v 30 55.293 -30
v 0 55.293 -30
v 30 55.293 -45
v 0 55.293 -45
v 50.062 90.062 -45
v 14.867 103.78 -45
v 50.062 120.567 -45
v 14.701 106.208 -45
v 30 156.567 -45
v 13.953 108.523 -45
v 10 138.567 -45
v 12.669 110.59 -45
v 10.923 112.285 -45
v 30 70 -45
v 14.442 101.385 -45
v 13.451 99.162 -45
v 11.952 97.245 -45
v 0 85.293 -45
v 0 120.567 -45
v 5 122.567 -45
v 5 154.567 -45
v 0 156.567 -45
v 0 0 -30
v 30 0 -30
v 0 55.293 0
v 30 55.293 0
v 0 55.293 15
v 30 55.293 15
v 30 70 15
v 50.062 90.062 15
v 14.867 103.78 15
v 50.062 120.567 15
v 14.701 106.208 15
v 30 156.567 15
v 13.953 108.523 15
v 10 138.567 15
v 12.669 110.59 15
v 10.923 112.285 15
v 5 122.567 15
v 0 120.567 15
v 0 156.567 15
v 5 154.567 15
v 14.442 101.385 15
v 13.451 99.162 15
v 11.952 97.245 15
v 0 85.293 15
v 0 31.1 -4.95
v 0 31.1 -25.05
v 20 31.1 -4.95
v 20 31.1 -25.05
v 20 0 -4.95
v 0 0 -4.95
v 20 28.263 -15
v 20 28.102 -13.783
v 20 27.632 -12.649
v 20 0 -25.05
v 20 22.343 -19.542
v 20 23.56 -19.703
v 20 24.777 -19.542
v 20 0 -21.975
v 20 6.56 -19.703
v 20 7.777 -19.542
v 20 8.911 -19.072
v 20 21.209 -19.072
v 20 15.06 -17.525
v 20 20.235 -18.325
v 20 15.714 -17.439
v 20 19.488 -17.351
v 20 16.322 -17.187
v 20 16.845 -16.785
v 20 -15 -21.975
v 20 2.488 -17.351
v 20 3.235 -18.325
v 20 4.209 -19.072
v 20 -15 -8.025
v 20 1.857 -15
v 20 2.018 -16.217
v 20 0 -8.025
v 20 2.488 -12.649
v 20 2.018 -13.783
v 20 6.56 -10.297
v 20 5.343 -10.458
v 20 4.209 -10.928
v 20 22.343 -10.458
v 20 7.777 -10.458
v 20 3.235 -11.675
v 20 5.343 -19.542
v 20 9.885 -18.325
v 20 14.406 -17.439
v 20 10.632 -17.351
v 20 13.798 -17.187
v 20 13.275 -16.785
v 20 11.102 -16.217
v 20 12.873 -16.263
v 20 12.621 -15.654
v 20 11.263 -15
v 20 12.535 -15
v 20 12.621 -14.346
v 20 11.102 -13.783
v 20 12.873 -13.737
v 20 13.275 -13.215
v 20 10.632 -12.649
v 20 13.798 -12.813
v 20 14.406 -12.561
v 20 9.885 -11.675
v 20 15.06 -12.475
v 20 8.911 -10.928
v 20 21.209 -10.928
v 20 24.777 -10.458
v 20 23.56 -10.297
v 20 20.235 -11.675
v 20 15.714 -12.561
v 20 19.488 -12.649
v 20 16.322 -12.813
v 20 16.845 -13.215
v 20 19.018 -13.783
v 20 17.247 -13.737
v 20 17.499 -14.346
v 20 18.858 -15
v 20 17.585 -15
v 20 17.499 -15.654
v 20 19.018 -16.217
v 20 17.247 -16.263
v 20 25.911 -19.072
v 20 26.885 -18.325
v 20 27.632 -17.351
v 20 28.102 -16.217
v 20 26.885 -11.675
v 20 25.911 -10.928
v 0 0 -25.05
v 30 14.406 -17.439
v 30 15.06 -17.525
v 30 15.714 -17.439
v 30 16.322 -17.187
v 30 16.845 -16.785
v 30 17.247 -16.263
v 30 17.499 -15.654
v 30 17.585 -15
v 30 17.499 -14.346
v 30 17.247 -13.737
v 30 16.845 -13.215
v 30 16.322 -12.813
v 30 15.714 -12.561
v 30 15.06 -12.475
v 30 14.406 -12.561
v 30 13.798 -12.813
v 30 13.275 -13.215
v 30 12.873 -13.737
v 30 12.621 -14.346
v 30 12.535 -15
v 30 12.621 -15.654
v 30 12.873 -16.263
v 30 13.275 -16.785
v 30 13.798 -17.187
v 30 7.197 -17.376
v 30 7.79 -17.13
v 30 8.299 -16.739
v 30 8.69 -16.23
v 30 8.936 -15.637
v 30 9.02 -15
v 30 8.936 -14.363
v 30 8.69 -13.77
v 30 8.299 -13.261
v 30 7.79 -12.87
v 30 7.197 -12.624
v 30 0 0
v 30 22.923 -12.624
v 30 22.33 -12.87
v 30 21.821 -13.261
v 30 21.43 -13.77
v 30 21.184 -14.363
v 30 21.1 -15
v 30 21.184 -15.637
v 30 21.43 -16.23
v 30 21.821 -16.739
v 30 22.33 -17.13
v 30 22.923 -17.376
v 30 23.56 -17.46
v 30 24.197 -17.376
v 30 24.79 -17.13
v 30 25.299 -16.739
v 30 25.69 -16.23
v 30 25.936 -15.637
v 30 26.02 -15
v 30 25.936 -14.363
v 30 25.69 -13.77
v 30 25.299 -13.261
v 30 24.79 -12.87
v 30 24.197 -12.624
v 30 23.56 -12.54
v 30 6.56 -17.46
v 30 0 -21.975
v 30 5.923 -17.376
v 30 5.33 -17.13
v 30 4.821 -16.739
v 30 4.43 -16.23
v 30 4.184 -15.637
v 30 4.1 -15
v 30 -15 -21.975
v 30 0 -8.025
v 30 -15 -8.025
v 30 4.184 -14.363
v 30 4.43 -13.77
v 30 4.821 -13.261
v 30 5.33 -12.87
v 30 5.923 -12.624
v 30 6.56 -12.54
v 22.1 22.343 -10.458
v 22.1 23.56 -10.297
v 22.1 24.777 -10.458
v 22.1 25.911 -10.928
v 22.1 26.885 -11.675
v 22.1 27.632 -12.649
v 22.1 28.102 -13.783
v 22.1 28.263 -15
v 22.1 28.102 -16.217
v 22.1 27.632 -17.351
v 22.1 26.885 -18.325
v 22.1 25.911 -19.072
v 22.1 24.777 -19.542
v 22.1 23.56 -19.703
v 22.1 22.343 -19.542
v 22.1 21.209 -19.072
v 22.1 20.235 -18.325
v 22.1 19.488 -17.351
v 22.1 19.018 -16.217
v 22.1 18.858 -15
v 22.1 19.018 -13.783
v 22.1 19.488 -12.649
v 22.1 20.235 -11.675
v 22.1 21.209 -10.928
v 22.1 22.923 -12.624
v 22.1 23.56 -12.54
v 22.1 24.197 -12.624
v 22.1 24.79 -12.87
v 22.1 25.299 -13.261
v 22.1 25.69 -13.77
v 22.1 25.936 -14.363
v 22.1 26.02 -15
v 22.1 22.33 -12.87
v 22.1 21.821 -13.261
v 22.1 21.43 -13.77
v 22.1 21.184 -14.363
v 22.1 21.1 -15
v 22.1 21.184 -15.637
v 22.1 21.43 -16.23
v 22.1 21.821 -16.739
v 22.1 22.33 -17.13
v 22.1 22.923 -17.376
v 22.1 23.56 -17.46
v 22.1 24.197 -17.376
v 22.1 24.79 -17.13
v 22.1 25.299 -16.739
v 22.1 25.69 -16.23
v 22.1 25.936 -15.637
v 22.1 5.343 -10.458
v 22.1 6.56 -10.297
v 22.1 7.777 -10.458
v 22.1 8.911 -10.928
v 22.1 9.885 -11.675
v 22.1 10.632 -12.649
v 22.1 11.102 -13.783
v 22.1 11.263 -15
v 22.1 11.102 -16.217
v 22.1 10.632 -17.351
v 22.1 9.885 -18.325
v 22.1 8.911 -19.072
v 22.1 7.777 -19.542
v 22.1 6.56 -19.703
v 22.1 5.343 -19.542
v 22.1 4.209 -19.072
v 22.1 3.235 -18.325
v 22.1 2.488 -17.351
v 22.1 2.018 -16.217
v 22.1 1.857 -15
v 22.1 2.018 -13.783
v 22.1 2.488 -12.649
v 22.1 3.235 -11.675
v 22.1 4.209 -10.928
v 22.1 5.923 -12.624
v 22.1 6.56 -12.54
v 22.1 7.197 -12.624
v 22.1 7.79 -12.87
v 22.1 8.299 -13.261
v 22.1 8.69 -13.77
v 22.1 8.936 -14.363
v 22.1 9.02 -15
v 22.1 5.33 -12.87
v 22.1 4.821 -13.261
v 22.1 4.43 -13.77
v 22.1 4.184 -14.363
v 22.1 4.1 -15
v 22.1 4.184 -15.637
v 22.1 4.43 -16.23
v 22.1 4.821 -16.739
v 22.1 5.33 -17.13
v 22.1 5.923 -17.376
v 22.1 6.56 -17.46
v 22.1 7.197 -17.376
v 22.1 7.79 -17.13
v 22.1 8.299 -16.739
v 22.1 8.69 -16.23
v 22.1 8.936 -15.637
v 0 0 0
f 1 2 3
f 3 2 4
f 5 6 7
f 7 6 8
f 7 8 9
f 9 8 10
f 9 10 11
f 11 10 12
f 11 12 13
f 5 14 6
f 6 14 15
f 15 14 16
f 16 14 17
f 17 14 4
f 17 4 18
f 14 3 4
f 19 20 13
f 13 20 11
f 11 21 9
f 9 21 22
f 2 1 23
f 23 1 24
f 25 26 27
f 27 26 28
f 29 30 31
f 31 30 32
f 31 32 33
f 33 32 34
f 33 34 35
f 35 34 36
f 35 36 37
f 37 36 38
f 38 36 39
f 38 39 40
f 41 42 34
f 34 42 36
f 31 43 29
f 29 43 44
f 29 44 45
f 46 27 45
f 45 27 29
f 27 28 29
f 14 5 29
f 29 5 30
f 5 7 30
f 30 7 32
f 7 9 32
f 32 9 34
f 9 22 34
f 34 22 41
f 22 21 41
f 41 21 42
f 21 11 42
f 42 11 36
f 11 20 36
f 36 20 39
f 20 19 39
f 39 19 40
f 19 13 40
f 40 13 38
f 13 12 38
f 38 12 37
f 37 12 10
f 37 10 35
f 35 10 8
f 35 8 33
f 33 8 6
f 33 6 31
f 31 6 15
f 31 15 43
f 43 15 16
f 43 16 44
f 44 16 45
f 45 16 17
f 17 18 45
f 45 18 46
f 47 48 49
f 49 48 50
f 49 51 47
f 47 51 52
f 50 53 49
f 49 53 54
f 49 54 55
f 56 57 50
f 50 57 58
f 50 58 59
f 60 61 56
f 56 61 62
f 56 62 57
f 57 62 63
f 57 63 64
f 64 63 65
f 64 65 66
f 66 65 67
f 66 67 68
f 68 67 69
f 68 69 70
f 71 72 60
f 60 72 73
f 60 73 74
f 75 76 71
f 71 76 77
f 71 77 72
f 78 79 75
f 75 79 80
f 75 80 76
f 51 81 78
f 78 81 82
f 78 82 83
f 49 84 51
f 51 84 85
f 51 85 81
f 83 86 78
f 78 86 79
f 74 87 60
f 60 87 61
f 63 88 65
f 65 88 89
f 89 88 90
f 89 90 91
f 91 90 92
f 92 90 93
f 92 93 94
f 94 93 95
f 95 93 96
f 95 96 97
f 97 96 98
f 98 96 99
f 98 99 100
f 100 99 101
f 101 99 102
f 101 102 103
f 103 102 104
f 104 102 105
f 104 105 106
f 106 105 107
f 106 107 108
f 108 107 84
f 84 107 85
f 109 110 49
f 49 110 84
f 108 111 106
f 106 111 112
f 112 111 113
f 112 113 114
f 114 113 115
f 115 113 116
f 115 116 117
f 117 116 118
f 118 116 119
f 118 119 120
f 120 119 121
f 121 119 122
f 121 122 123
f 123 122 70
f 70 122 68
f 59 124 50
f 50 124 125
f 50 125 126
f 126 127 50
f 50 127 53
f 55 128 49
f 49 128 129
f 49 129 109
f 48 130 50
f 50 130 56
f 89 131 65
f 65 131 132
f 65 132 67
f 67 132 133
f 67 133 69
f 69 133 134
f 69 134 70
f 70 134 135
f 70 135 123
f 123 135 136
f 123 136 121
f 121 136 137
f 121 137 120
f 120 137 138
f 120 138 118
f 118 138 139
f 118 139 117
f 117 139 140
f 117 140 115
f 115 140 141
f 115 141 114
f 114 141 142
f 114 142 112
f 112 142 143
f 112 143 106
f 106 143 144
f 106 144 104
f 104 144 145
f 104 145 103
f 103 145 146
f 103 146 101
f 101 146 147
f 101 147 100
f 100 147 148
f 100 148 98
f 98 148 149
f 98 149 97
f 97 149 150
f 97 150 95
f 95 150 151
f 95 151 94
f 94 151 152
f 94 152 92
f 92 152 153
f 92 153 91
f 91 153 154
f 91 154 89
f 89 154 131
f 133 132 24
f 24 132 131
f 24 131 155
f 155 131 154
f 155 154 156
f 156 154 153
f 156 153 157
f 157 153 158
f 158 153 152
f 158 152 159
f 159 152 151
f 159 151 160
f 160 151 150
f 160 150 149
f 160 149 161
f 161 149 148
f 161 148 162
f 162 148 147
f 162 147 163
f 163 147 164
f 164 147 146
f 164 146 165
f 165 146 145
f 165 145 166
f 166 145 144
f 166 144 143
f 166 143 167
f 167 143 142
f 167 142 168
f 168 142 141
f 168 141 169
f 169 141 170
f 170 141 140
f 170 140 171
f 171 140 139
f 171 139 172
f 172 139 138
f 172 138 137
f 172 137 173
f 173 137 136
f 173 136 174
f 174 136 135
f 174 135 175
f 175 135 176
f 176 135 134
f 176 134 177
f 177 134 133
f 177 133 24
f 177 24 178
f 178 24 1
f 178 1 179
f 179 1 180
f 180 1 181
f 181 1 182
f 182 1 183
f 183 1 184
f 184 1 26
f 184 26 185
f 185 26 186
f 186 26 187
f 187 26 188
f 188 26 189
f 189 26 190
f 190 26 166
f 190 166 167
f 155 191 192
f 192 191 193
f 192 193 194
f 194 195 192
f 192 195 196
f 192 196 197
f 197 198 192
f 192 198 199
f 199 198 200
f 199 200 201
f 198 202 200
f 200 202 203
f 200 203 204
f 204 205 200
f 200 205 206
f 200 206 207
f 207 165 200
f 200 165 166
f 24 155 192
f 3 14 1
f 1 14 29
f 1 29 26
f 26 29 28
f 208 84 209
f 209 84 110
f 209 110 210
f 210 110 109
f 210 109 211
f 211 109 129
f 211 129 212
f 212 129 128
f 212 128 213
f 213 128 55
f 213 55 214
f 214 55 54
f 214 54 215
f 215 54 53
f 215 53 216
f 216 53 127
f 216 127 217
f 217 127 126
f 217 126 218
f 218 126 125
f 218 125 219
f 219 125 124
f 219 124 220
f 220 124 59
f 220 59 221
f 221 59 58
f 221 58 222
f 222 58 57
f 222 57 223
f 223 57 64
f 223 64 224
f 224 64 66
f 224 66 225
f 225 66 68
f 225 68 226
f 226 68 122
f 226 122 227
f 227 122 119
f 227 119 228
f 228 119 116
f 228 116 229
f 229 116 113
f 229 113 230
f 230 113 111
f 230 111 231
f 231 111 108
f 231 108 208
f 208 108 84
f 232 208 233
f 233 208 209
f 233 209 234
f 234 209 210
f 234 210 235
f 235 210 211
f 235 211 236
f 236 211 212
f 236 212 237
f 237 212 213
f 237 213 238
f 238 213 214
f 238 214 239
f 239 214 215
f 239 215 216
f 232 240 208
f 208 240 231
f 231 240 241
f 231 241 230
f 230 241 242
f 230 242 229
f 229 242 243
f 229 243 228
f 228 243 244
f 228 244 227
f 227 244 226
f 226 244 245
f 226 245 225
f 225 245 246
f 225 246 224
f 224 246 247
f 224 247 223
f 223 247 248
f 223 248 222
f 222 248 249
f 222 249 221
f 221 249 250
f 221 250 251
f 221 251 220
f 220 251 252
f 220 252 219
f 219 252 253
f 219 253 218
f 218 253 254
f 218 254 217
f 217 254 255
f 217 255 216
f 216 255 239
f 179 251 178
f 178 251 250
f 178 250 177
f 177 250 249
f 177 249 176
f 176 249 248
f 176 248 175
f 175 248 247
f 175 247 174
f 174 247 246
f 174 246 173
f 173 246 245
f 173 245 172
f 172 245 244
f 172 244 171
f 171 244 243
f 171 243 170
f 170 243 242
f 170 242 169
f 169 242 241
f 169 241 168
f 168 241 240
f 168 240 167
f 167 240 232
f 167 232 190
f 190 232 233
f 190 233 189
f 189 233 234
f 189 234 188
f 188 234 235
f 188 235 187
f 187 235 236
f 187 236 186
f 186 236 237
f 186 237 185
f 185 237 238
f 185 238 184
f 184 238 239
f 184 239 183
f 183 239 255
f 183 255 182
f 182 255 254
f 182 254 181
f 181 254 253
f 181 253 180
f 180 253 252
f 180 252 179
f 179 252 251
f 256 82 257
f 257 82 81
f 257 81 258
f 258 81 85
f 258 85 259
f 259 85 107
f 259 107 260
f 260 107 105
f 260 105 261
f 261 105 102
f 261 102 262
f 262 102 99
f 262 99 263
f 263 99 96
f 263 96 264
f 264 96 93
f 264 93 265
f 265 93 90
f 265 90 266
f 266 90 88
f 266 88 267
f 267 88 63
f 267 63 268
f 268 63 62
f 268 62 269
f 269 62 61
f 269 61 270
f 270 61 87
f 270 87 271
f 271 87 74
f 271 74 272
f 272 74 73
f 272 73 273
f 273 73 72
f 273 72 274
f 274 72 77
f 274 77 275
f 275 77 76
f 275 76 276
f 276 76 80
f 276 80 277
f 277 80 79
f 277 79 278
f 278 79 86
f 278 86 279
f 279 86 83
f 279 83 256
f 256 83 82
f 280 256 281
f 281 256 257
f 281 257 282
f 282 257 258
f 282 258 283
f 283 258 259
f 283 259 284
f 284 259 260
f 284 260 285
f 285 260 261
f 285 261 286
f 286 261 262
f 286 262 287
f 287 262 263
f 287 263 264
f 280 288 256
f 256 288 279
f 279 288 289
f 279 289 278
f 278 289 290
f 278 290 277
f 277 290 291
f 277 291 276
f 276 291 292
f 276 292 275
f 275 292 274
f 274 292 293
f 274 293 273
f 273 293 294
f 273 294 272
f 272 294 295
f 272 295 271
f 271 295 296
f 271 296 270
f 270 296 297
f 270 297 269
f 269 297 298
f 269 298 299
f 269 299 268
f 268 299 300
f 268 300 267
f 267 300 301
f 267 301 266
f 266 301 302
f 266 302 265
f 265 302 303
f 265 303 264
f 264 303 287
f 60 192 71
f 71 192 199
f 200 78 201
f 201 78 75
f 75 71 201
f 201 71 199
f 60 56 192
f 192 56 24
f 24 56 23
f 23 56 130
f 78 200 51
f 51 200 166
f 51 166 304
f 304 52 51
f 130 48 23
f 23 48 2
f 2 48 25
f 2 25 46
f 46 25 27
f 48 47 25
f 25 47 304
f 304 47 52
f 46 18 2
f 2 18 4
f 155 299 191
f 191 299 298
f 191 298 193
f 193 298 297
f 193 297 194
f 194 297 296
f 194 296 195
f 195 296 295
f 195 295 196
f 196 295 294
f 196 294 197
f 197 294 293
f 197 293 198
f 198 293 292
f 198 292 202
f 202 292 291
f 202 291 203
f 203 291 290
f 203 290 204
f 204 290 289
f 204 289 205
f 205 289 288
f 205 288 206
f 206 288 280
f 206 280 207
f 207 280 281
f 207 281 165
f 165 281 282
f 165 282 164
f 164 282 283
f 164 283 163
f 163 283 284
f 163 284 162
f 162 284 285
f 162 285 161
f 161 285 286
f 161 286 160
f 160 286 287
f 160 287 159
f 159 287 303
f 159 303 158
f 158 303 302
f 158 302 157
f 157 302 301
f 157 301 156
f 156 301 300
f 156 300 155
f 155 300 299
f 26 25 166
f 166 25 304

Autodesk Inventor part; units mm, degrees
ref_plane "YZ Plane" through (0, 0, 0) normal (1, 0, 0) x (0, 1, 0)
ref_plane "XZ Plane" through (0, 0, 0) normal (0, 1, 0) x (-1, 0, 0)
sketch "Sketch1" plane through (0, 0, 0) normal (0, 0, 1) x (1, 0, 0)
  line L0 (0, 0) -> (25, 0)
  line L1 (25, 0) -> (25, 40)
  line L2 (25, 40) -> (0, 40)
  line L3 (0, 40) -> (0, 0)
  dimension "d1" = 25
  dimension "d2" = 40
  dimension "d3" = 25
extrude "Extrusion1" add sketch "Sketch1" against normal blind 30
sketch "Sketch2" plane through (25, 0, 0) normal (1, 0, 0) x (0, 0, -1)
  line L0 (0, 0) -> (30, 0) projected
  circle A0 centre (15, 6.56) radius 2.46
extrude "Extrusion2" cut sketch "Sketch2" against normal blind 30
sketch "Sketch3" plane through (0, 0, 0) normal (-1, 0, 0) x (0, 0, 1)
  line L0 (0, 0) -> (-30, 0) projected
  line L1 (-25.05, 0) -> (-4.95, 0)
  line L2 (-4.95, 0) -> (-4.95, 33.12)
  line L3 (-4.95, 33.12) -> (-25.05, 33.12)
  line L4 (-25.05, 33.12) -> (-25.05, 0)
  dimension "d11" = 20.1
extrude "Extrusion3" cut sketch "Sketch3" against normal blind 20
sketch "Sketch4" plane through (0, 0, 0) normal (0, -1, 0) x (1, 0, 0)
  line L0 (20, -4.95) -> (20, -25.05) projected
  line L1 (20, -15) -> (25, -15)
  line L2 (25, 0) -> (25, -30) projected
  line L3 (20, -8.025) -> (25, -8.025)
  line L4 (25, -8.025) -> (25, -21.975)
  line L5 (25, -21.975) -> (20, -21.975)
  line L6 (20, -21.975) -> (20, -8.025)
  line L7 (20, -8.025) -> (25, -21.975) construction
  line L8 (25, -8.025) -> (20, -21.975) construction
  line L9 (25, -12.54) -> (25, -17.46) projected
  point P0 (0, 0)
  point P1 (22.5, -15)
  dimension "d14" = 13.95
extrude "Extrusion4" add sketch "Sketch4" along normal blind 15
sketch "Sketch5" plane through (20, 0, 0) normal (-1, 0, 0) x (0, 0, 1)
  circle A0 centre (-15, 6.56) radius 2.46 projected
  circle A1 centre (-15, 6.56) radius 4.7025
  circle A2 centre (-15, 6.56) radius 2.46 projected
  circle A3 centre (-15, 6.56) radius 2.46
  point P0 (0, 0)
  dimension "d17" = 9.405
extrude "Extrusion5" cut sketch "Sketch5" against normal blind 2.1
sketch "Sketch6" plane through (25, 0, 0) normal (1, 0, 0) x (0, 0, -1)
  circle A0 centre (15, 6.56) radius 4.7025 projected
  line L0 (15, 6.56) -> (15, 23.56)
  circle A1 centre (15, 23.56) radius 2.46
  point P0 (0, 0)
  dimension "d20" = 17
  dimension "d21" = 4.92
extrude "Extrusion6" cut sketch "Sketch6" against normal blind 10 contours A1
sketch "Sketch7" plane through (20, 0, 0) normal (-1, 0, 0) x (0, 0, 1)
  circle A0 centre (-15, 23.56) radius 2.46 projected
  circle A1 centre (-15, 23.56) radius 4.7025
  point P0 (0, 0)
  dimension "d24" = 9.405
extrude "Extrusion7" cut sketch "Sketch7" against normal blind 2.1
sketch "Sketch9" plane through (25, 0, 0) normal (1, 0, 0) x (0, 0, -1)
  circle A0 centre (15, 6.56) radius 2.46 projected
  circle A1 centre (15, 6.56) radius 2.46
  circle A2 centre (15, 23.56) radius 2.46 projected
  circle A3 centre (15, 23.56) radius 2.46
  line L0 (30, 40) -> (30, 0) projected
  line L1 (30, 0) -> (30, 40)
  line L2 (30, 40) -> (0, 40)
  line L3 (0, 40) -> (0, 0)
  line L4 (0, 0) -> (8.025, 0) projected
  line L5 (21.975, 0) -> (21.975, -15)
  line L6 (21.975, -15) -> (8.025, -15)
  line L7 (8.025, -15) -> (8.025, 0)
  line L8 (0, 0) -> (8.025, 0)
  line L9 (21.975, 0) -> (30, 0)
extrude "Extrusion8" add sketch "Sketch9" along normal blind 5
sketch "Sketch10" plane through (0, 40, 0) normal (0, 1, 0) x (1, 0, 0)
  line L0 (0, 30) -> (30, 30) projected
  line L1 (30, 0) -> (0, 0) projected
  line L2 (0, 30) -> (30, 30)
  line L3 (30, 30) -> (30, 0)
  line L4 (30, 0) -> (0, 0)
  line L5 (0, 0) -> (0, 30)
extrude "Extrusion9" add sketch "Sketch10" along normal blind 30
sketch "Sketch12" plane through (30, 0, 0) normal (1, 0, 0) x (0, 0, -1)
  circle A0 centre (15, 6.56) radius 2.46 projected
  line L0 (15, 6.56) -> (15, 15.06)
  circle A1 centre (15, 15.06) radius 2.525
  point P0 (0, 0)
  dimension "d31" = 8.5
  dimension "d33" = 5.05
extrude "Extrusion10" cut sketch "Sketch12" against normal blind 30 contours A1
sketch "Sketch15" plane through (0, 0, -25.05) normal (-1, 0, 0) x (0, 0, 1)
  line L0 (0, 33.12) -> (20.1, 33.12) projected
  line L1 (20.1, 33.12) -> (20.1, 0) projected
  line L2 (0, 33.12) -> (20.1, 33.12)
  line L3 (20.1, 33.12) -> (20.1, 31.1)
  line L4 (20.1, 31.1) -> (0, 31.1)
  line L5 (0, 31.1) -> (0, 33.12)
  point P0 (25.05, 0)
  dimension "d57" = 2.02
extrude "Extrusion13" add sketch "Sketch15" against normal blind 20
sketch "Sketch17" plane through (0, 0, 0) normal (0, 0, 1) x (1, 0, 0)
  line L0 (0, 70) -> (30, 70) projected
  line L1 (30, 70) -> (50.0622, 90.0622)
  line L2 (30, 70) -> (80, 70) construction
  line L3 (11.9522, 97.2454) -> (0, 85.2932)
  line L4 (0, 70) -> (0, 85.2932)
  line L5 (0, 70) -> (0, 0) projected
  line L6 (0, 70) -> (30, 70)
  line L7 (10.923, 112.2849) -> (0, 120.567)
  line L8 (50.0622, 105.3553) -> (50.0622, 120.567)
  line L9 (50.0622, 105.3553) -> (50.0622, 90.0622)
  arc A0 (11.9522, 97.2454) -> (10.923, 112.2849) centre (4.8811, 104.3165) ccw
  line L10 (0, 156.567) -> (30, 156.567)
  line L11 (30, 156.567) -> (50.0622, 120.567)
  line L12 (5, 154.567) -> (0, 156.567)
  line L13 (5, 122.567) -> (0, 120.567)
  line L14 (5, 122.567) -> (10, 138.567)
  line L15 (10, 138.567) -> (5, 154.567)
  dimension "d61" = 45
  dimension "d62" = 32.0271
  dimension "d72" = 10
extrude "Extrusion14" add sketch "Sketch17" against normal blind 30
sketch "Sketch23" plane through (0, 0, 0) normal (0, 0, 1) x (1, 0, 0)
  line L0 (50.0622, 90.0622) -> (30, 70) projected
  line L1 (30, 70) -> (50.0622, 90.0622)
  line L2 (50.0622, 120.567) -> (50.0622, 90.0622) projected
  line L3 (50.0622, 90.0622) -> (50.0622, 120.567)
  line L4 (30, 156.567) -> (50.0622, 120.567) projected
  line L5 (50.0622, 120.567) -> (30, 156.567)
  line L6 (0, 156.567) -> (30, 156.567) projected
  line L7 (30, 156.567) -> (0, 156.567)
  line L8 (5, 154.567) -> (0, 156.567) projected
  line L9 (0, 156.567) -> (5, 154.567)
  line L10 (10, 138.567) -> (5, 154.567) projected
  line L11 (5, 154.567) -> (10, 138.567)
  line L12 (5, 122.567) -> (10, 138.567) projected
  line L13 (10, 138.567) -> (5, 122.567)
  line L14 (0, 120.567) -> (5, 122.567) projected
  line L15 (5, 122.567) -> (0, 120.567)
  line L16 (10.923, 112.2849) -> (0, 120.567) projected
  line L17 (0, 120.567) -> (10.923, 112.2849)
  line L18 (0, 85.2932) -> (11.9522, 97.2454) projected
  line L19 (11.9522, 97.2454) -> (0, 85.2932)
  line L20 (0, 85.2932) -> (0, 55.2932)
  line L21 (0, 0) -> (0, 85.2932) projected
  line L22 (0, 55.2932) -> (30, 55.2932)
  line L23 (30, 0) -> (30, 70) projected
  line L24 (30, 55.2932) -> (30, 70)
  arc A0 (11.9522, 97.2454) -> (10.923, 112.2849) centre (4.8811, 104.3165) ccw
  dimension "d97" = 30
extrude "Extrusion15" add sketch "Sketch23" along normal blind 15
ref_plane "Work Plane1" through (0, 0, -15) normal (0, 0, 1) x (1, 0, 0)
mirror "Mirror1" about plane through (0, 0, -15) normal (0, 0, 1) of "Extrusion15"
properties part number "rec_c_32mm_x_60mm"
